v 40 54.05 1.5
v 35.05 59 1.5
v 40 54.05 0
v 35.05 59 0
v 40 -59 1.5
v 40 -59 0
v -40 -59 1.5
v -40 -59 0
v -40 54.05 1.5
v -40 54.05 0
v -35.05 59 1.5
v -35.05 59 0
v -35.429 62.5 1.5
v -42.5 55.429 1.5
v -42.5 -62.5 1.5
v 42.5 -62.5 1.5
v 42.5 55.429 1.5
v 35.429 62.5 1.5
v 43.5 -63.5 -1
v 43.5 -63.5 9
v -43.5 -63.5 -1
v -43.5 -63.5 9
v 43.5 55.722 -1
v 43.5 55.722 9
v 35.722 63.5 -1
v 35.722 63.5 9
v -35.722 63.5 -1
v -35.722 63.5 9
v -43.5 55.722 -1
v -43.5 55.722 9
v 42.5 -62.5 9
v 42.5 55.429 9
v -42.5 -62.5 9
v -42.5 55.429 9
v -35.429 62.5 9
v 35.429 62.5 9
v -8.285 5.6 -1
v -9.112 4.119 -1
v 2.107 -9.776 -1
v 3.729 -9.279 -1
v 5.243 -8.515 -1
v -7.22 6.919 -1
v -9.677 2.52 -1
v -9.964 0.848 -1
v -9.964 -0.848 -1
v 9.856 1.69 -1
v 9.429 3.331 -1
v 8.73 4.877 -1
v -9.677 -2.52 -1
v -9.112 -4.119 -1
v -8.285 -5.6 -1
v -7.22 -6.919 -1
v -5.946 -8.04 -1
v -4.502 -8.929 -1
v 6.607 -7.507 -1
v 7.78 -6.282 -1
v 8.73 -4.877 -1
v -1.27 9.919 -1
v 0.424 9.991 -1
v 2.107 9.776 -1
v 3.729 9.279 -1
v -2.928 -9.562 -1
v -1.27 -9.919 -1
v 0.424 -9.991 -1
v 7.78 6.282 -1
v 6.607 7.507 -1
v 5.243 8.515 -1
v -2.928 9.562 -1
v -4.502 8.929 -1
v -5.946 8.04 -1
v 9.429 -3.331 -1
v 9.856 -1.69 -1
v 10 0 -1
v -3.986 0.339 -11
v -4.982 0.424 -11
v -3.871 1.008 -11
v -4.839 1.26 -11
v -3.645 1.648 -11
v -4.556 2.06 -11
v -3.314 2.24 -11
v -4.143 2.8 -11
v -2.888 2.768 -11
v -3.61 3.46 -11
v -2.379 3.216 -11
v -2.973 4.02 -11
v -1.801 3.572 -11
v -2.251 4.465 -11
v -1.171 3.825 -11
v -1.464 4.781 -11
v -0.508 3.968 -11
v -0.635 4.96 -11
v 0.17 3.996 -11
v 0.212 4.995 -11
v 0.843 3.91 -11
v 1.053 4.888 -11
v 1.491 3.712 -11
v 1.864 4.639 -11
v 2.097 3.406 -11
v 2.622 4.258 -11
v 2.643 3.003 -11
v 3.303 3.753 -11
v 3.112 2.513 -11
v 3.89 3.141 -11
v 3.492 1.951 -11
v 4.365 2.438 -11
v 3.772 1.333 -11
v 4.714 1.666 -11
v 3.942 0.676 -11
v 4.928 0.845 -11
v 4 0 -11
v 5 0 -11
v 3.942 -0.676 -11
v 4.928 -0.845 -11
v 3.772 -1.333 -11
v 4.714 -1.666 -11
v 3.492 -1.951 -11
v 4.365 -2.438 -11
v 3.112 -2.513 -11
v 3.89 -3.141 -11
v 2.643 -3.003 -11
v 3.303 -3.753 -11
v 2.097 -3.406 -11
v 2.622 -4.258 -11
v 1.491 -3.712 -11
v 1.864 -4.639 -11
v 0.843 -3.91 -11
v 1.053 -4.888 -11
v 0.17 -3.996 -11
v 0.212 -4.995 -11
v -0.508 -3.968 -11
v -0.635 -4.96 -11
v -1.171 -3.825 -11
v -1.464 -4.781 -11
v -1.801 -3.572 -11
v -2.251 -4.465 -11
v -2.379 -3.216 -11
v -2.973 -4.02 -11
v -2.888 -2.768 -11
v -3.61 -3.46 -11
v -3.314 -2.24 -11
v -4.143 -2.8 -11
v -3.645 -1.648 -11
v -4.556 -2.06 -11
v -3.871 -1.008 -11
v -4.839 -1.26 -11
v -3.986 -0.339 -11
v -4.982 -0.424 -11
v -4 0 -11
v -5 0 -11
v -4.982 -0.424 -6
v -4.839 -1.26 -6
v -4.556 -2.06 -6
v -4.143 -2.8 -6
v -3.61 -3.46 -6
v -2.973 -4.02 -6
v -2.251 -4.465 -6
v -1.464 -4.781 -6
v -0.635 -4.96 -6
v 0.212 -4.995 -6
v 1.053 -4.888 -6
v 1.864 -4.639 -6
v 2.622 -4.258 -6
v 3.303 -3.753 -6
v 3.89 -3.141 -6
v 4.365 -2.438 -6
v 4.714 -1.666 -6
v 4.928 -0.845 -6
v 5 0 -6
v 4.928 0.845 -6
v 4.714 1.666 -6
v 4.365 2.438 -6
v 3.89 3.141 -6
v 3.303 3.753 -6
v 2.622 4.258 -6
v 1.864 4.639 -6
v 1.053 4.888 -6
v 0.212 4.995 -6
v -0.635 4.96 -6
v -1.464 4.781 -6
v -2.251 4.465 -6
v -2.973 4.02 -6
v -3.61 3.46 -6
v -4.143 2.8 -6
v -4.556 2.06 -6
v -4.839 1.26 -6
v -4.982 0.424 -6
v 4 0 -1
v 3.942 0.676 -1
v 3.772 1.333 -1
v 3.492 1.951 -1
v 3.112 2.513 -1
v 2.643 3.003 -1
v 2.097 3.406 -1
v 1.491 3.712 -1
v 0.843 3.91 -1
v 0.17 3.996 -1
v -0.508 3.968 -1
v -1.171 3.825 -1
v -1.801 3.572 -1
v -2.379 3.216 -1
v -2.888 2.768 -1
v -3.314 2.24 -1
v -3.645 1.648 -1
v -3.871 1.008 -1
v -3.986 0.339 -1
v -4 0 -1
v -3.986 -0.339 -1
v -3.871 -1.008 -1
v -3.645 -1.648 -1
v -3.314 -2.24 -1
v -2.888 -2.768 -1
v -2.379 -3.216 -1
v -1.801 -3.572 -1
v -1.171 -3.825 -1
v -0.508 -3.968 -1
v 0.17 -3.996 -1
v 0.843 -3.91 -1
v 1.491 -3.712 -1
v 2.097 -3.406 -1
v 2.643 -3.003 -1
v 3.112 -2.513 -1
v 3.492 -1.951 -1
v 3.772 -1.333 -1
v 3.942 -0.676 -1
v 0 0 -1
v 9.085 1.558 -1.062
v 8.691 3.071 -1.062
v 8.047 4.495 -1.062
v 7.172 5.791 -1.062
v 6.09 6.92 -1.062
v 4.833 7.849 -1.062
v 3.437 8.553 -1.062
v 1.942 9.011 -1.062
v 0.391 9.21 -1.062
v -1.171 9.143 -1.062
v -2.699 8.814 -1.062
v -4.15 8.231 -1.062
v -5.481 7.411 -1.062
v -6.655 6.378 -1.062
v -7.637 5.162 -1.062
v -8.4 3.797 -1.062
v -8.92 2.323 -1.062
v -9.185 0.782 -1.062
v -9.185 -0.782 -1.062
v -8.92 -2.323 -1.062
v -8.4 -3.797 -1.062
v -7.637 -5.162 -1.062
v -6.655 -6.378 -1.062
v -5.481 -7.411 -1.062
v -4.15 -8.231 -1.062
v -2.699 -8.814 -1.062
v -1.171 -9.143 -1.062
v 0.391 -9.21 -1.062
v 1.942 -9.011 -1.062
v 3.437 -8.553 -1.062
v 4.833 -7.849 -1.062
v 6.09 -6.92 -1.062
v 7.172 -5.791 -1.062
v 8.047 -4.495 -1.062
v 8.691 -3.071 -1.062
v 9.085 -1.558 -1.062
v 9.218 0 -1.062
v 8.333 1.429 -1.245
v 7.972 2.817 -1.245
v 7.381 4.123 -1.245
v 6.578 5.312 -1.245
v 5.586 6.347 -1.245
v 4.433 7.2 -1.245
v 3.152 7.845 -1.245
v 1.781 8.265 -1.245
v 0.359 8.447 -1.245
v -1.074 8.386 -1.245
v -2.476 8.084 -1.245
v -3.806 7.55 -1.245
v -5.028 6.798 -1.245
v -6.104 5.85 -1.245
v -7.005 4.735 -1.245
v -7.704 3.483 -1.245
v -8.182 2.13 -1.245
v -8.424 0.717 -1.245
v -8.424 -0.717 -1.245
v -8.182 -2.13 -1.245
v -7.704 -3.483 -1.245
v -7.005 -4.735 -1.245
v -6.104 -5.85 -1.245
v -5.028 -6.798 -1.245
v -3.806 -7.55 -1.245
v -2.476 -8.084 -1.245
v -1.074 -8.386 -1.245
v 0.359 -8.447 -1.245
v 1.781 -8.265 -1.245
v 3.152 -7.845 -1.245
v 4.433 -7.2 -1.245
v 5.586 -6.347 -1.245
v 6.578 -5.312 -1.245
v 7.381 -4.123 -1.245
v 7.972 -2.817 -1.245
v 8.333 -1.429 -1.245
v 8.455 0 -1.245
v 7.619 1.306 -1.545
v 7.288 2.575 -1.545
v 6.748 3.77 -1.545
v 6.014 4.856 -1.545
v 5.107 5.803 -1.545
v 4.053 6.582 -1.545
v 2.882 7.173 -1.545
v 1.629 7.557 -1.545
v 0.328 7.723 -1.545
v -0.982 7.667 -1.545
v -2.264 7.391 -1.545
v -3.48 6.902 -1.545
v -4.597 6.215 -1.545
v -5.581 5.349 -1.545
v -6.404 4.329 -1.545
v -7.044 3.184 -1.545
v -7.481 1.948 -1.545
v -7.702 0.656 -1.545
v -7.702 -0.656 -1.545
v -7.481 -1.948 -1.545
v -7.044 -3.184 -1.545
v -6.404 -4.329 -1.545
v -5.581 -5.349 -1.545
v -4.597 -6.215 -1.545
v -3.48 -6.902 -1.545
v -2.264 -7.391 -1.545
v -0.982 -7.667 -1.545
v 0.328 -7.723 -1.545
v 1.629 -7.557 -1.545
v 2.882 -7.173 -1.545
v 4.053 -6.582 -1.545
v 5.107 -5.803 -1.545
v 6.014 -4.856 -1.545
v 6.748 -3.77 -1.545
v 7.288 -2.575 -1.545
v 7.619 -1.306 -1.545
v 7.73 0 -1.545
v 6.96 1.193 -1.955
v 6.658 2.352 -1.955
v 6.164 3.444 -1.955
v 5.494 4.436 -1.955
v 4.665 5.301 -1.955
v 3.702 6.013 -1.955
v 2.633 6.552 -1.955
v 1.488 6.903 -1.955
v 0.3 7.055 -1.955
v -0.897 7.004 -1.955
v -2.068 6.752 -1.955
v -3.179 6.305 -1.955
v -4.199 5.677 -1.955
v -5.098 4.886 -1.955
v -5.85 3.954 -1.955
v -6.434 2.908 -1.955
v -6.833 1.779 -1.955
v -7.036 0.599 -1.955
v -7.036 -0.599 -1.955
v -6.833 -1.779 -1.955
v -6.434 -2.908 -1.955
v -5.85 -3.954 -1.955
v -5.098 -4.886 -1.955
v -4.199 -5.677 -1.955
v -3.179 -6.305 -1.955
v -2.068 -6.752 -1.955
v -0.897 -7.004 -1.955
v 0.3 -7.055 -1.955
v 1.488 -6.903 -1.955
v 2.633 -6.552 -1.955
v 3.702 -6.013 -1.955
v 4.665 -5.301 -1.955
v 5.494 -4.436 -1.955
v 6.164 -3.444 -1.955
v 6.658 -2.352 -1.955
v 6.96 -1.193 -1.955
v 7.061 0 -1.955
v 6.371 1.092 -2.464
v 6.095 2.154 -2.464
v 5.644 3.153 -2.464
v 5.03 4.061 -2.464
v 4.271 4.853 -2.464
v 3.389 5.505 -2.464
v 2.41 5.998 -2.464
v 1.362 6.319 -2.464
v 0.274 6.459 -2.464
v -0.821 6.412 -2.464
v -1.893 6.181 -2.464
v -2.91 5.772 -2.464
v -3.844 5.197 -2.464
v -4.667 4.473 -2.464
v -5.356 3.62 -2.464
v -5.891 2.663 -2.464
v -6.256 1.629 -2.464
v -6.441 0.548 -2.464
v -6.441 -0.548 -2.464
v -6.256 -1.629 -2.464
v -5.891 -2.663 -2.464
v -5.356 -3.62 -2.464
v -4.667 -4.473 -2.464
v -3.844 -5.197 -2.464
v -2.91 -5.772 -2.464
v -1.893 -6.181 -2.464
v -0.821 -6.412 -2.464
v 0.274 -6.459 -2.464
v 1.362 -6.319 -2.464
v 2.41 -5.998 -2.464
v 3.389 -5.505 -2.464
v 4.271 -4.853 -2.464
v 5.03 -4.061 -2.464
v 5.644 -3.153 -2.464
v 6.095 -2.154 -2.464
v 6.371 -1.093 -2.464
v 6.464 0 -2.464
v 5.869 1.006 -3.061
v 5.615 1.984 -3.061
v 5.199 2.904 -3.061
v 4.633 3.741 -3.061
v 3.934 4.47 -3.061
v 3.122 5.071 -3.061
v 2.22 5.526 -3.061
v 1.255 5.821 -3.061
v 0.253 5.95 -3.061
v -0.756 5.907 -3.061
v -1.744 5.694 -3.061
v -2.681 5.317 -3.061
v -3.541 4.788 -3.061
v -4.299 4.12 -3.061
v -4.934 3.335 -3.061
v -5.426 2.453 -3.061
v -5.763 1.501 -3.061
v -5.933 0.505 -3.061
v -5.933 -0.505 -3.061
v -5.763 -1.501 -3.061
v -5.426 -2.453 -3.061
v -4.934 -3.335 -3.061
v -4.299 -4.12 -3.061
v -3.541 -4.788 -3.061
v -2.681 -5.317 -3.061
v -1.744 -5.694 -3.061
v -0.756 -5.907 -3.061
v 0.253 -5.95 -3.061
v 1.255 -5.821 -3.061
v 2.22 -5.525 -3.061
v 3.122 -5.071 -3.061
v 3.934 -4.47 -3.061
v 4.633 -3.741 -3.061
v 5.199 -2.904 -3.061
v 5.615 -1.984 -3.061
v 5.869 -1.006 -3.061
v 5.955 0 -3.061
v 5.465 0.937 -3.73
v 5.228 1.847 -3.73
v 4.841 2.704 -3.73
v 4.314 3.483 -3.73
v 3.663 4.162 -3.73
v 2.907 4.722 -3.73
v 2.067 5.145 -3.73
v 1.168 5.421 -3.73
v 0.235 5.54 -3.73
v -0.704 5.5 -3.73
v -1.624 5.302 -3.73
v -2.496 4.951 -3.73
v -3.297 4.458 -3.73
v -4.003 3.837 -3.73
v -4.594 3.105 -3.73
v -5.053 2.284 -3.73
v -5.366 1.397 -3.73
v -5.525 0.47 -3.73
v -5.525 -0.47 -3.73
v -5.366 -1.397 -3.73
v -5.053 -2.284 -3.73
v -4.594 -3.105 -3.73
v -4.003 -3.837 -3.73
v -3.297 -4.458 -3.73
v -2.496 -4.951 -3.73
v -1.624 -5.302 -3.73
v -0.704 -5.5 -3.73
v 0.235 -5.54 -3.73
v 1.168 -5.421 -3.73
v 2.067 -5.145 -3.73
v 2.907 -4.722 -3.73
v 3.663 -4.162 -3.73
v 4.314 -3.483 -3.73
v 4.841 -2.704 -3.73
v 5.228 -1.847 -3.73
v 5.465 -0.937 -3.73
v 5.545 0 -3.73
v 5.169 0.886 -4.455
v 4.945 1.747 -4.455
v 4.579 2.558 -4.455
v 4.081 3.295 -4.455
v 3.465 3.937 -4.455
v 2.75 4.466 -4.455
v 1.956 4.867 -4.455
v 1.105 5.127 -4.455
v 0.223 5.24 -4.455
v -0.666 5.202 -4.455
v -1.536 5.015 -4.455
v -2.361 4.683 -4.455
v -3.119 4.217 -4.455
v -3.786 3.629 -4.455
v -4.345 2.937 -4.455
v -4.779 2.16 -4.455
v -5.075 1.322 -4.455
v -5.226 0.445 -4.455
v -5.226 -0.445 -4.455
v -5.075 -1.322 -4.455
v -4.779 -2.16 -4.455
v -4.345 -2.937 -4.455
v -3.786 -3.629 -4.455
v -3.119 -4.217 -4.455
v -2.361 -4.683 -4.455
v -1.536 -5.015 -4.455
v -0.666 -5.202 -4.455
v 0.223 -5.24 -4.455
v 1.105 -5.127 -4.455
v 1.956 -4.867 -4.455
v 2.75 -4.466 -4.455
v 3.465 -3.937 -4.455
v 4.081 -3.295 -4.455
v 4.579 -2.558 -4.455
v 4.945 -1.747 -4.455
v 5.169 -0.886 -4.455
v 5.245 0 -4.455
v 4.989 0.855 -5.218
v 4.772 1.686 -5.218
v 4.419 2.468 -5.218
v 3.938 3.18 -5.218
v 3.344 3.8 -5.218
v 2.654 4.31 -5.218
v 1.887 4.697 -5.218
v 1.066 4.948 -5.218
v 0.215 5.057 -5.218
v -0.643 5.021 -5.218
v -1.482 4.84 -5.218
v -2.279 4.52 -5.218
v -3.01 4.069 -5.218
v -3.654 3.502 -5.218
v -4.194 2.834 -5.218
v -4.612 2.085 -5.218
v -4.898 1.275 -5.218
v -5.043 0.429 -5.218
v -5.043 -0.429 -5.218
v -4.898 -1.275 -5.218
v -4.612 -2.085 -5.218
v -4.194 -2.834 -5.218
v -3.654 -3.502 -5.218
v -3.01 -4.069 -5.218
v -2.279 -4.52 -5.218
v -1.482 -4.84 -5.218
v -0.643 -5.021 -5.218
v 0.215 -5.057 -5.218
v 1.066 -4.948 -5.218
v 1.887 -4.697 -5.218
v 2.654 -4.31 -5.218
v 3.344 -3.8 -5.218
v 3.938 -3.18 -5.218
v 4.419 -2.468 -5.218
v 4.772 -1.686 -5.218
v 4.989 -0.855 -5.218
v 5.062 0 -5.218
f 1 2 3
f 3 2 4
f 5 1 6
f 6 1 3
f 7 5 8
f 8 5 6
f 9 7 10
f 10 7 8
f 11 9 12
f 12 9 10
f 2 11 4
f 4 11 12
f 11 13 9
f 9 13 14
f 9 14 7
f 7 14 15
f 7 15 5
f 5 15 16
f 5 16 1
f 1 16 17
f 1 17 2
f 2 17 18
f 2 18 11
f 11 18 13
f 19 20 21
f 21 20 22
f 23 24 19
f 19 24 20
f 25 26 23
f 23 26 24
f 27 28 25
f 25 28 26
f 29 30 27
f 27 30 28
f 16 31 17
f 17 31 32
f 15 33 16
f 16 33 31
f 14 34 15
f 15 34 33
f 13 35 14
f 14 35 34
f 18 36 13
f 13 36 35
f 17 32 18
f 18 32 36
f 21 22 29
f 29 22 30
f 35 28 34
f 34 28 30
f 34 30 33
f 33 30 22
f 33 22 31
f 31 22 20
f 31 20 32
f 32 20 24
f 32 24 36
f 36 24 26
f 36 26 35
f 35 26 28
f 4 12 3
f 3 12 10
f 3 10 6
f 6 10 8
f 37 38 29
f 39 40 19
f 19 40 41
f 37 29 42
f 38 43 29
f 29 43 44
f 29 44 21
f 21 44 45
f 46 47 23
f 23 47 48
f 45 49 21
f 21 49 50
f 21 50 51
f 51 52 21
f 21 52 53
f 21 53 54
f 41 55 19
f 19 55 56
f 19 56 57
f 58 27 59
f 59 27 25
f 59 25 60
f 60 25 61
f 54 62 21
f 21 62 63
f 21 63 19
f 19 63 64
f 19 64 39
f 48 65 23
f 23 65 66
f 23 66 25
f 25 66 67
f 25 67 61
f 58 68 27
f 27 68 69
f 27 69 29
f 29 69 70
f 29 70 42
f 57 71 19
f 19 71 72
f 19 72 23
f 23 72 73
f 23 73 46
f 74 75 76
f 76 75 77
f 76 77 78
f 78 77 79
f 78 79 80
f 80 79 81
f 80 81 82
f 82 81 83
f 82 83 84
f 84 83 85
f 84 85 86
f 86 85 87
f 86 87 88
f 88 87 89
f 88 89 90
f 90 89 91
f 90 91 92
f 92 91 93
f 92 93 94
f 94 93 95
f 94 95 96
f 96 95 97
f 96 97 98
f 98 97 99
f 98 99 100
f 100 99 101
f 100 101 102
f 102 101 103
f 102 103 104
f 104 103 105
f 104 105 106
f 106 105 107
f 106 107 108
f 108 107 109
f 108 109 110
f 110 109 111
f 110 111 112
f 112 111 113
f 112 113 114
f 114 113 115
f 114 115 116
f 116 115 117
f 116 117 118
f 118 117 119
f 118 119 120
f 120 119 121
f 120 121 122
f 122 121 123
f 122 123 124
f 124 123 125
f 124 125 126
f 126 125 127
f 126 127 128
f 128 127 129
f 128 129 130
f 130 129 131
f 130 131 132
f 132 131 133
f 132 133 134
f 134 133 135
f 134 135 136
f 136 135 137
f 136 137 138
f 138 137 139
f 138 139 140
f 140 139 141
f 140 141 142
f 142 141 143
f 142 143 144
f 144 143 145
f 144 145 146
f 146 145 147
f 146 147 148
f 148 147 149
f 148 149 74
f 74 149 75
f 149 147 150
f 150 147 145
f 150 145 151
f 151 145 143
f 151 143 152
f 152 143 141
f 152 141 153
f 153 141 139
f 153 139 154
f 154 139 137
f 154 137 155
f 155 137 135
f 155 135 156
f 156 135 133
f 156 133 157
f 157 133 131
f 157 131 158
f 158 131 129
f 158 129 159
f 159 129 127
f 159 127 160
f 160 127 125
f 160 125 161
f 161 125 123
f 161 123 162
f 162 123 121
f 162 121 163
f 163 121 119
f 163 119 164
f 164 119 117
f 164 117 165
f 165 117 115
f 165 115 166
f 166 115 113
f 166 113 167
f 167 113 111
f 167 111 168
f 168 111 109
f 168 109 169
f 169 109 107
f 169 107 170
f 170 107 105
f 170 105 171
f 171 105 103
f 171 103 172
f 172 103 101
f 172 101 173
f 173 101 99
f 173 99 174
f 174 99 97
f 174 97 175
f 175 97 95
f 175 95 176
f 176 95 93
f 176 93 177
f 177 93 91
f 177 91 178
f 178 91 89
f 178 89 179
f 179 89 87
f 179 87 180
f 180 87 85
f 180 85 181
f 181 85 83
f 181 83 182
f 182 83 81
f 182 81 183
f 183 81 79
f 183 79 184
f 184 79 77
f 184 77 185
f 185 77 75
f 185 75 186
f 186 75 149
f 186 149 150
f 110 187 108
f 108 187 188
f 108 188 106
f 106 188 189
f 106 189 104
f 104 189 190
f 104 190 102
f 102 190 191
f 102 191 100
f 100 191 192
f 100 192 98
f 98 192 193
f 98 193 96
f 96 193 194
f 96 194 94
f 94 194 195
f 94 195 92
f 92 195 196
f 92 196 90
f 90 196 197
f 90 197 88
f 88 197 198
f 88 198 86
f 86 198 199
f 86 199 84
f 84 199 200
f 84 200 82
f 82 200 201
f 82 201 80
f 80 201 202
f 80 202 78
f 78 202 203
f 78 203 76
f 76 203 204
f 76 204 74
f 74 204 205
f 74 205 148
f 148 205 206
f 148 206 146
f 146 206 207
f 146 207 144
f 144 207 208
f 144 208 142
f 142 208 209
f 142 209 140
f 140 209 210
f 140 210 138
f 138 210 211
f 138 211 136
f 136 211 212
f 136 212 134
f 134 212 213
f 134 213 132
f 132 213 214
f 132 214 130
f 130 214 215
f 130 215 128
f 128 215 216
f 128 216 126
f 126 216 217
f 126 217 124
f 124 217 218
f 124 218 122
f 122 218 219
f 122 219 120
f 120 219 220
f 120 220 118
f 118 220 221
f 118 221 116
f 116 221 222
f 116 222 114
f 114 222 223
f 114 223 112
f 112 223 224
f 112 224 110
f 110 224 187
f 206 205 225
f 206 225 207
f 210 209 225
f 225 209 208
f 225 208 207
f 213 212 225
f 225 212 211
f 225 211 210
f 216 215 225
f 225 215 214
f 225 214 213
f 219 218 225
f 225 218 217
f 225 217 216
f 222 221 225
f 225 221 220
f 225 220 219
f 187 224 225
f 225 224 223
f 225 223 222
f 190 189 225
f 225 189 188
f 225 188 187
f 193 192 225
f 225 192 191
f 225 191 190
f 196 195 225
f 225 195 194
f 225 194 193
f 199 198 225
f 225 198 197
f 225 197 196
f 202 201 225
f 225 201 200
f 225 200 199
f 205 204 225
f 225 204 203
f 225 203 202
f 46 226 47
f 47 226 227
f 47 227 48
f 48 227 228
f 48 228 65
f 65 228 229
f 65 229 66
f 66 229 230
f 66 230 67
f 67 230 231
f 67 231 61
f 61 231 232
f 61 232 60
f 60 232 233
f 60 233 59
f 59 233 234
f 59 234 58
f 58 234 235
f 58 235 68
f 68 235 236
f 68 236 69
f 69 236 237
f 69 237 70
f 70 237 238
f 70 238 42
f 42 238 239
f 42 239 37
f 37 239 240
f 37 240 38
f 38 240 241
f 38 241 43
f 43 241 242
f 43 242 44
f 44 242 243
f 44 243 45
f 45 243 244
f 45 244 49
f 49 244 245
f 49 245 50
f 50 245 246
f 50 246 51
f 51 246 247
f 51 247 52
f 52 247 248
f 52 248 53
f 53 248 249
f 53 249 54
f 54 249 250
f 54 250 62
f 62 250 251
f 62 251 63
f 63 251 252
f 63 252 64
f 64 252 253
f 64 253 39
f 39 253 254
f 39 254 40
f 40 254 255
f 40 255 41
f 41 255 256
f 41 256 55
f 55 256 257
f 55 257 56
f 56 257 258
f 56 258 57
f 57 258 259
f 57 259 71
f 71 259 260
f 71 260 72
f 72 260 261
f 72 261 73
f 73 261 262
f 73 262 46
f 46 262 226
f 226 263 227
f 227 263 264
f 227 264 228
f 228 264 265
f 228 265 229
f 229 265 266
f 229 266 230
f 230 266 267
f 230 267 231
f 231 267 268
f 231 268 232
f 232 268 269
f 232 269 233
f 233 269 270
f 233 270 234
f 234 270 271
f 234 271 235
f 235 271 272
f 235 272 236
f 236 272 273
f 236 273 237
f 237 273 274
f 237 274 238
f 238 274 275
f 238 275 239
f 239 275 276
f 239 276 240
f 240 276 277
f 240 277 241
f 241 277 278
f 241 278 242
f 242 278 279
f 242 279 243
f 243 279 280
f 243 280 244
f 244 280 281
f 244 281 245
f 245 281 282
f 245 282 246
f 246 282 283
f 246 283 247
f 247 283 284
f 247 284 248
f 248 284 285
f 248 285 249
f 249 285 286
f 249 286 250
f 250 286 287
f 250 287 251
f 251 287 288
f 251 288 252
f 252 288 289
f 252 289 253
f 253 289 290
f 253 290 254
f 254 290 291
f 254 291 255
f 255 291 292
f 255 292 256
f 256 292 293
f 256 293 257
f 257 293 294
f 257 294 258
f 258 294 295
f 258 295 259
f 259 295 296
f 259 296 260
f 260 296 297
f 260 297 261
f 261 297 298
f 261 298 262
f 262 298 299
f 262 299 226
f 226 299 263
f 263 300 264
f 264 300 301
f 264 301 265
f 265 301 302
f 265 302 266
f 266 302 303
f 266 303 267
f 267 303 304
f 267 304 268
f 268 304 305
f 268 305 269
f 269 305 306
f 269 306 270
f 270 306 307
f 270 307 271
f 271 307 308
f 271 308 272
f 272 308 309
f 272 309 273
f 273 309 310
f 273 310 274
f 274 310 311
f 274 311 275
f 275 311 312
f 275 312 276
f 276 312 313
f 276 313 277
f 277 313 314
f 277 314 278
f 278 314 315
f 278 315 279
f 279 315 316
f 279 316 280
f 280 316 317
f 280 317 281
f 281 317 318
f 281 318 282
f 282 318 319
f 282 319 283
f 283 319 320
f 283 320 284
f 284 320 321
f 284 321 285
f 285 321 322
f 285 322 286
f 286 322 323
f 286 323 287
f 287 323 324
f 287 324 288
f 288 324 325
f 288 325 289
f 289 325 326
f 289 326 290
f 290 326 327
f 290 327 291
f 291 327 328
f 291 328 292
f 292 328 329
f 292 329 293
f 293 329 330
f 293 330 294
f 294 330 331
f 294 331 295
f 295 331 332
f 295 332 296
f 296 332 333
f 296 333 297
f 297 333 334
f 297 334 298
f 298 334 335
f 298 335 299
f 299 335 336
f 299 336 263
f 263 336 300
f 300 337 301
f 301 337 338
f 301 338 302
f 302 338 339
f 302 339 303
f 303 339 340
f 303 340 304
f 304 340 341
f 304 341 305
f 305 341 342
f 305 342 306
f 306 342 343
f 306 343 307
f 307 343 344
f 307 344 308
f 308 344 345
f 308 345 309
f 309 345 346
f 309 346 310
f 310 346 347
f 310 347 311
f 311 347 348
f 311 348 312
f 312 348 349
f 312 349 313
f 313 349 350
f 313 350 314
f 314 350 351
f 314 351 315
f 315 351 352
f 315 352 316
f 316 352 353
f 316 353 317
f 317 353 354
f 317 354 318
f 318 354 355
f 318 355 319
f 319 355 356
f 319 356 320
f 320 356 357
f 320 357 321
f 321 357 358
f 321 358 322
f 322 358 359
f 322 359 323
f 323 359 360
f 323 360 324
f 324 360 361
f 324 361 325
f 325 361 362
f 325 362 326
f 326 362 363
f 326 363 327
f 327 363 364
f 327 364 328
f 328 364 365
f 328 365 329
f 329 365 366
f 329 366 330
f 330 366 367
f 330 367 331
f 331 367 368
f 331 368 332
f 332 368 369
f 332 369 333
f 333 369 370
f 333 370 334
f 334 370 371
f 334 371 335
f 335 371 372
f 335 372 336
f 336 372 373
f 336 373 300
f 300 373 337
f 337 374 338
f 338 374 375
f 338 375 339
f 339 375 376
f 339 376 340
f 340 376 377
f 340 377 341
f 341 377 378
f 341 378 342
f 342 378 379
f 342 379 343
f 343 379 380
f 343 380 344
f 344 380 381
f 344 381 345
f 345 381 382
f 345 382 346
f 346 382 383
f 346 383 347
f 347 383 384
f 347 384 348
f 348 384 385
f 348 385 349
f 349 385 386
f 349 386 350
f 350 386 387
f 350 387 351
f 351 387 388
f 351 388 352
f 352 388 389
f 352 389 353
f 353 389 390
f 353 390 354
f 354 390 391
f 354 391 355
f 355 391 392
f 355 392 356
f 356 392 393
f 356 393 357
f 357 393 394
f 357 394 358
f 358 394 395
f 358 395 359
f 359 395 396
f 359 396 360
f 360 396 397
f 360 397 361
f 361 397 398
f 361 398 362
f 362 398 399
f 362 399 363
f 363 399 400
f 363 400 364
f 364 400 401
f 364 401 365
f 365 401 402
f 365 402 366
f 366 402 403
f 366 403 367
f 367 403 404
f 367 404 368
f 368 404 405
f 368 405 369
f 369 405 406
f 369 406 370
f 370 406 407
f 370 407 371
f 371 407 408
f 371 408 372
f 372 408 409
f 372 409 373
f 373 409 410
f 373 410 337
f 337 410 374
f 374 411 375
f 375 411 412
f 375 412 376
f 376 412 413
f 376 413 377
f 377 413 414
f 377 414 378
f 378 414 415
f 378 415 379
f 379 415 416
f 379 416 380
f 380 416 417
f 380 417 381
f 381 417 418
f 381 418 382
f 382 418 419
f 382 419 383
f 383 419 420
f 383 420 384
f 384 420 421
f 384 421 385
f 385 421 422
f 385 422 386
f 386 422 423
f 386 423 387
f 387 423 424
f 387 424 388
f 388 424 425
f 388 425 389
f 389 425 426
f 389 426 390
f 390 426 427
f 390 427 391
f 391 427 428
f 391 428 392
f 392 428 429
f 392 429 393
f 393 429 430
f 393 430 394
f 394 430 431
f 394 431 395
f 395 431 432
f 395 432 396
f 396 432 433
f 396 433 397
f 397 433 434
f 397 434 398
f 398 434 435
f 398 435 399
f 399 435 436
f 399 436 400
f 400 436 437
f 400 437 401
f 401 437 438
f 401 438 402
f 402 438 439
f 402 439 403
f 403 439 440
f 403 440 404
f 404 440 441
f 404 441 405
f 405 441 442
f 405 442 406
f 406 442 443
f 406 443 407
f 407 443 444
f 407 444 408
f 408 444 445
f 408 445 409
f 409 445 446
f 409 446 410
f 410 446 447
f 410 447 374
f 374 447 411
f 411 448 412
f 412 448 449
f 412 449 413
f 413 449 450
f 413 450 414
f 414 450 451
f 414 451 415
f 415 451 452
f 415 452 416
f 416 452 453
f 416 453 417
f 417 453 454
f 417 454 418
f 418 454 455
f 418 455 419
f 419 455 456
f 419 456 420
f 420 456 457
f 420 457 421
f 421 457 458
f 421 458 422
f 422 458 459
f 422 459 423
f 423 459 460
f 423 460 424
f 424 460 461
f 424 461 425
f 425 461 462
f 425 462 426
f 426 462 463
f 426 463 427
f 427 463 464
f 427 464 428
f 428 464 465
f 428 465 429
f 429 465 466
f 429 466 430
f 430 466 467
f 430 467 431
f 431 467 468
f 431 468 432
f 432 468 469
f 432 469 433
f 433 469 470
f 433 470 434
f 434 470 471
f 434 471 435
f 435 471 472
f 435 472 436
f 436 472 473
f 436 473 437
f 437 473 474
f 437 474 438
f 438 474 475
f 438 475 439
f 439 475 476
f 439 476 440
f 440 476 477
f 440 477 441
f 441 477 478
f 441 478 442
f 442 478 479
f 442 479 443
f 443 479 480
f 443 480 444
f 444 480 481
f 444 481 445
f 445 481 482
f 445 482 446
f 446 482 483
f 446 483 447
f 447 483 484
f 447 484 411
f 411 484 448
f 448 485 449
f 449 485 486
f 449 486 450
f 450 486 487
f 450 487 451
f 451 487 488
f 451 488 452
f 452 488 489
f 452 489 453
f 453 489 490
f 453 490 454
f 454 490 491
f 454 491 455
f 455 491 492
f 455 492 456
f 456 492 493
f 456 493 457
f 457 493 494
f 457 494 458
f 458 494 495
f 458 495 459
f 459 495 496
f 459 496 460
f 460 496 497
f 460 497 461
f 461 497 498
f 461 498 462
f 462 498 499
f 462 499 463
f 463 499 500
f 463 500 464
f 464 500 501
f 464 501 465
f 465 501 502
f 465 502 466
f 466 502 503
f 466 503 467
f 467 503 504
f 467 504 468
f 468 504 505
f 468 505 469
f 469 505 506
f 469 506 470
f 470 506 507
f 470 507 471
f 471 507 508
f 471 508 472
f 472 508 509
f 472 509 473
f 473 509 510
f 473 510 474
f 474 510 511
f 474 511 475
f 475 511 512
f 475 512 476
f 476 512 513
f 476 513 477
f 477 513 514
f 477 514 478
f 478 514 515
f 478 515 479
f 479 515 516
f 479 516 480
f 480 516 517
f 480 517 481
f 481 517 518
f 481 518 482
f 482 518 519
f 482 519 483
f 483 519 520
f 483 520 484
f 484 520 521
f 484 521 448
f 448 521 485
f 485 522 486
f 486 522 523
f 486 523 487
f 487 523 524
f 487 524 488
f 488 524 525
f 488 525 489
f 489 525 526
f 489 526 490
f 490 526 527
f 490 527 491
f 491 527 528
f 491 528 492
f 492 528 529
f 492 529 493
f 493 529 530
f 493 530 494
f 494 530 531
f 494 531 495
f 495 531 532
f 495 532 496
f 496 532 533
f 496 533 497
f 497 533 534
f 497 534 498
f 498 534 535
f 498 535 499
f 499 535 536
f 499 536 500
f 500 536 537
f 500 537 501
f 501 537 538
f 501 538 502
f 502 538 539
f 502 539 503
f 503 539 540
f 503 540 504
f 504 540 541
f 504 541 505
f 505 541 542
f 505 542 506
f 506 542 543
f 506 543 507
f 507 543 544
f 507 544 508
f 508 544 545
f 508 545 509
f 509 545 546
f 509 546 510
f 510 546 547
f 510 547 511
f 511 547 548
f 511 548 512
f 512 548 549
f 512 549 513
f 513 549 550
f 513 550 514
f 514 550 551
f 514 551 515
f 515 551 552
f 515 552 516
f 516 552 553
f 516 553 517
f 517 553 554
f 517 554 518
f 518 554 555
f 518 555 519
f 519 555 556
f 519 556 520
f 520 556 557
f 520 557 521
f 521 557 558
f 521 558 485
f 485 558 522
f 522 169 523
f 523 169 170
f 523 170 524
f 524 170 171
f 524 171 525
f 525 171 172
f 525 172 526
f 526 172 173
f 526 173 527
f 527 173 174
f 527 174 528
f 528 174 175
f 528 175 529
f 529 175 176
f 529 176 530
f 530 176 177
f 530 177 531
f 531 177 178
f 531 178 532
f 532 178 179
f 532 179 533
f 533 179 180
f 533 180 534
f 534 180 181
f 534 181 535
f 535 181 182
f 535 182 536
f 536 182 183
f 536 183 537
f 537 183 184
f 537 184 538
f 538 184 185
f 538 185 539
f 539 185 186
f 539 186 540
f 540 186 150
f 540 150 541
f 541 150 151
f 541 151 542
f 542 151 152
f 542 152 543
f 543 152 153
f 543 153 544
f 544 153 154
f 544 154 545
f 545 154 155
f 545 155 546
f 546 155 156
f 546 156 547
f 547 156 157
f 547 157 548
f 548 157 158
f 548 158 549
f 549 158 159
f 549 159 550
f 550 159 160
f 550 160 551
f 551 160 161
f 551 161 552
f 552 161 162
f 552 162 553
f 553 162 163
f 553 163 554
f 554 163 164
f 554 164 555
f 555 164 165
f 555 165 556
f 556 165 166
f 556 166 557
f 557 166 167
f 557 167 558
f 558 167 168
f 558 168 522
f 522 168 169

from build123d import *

# Parameters (mm, degrees)
BOSS_EXTRUDE1_DEPTH = 1.5
BOSS_EXTRUDE2_DEPTH = 9
BOSS_EXTRUDE3_DEPTH = 1
SKETCH4_R           = 5
SKETCH4_R_2         = 4
BOSS_EXTRUDE4_DEPTH = 10
FILLET1_R           = 5


with BuildPart() as part:
    # Sketch1 → Boss-Extrude1 (new body)
    with BuildSketch(Plane(origin=(0, 0, 0), x_dir=(0, 1, 0), z_dir=(0, 0, 1))):
        Polygon((-62.5, -42.5), (-62.5, 42.5), (55.428932188, 42.5), (62.5, 35.428932188), (62.5, -35.428932188), (55.428932188, -42.5), align=None)
        Polygon((54.050252532, 40), (59, 35.050252532), (59, -35.050252532), (54.050252532, -40), (-59, -40), (-59, 40), align=None, mode=Mode.SUBTRACT)
    extrude(amount=BOSS_EXTRUDE1_DEPTH)

    # Sketch2 → Boss-Extrude2 (add)
    with BuildSketch(Plane(origin=(0, 0, 0), x_dir=(0, 1, 0), z_dir=(0, 0, 1))):
        Polygon((-63.5, 43.5), (-63.5, -43.5), (55.721825407, -43.5), (63.5, -35.721825407), (63.5, 35.721825407), (55.721825407, 43.5), align=None)
        Polygon((-62.5, -42.5), (55.428932188, -42.5), (62.5, -35.428932188), (62.5, 35.428932188), (55.428932188, 42.5), (-62.5, 42.5), align=None, mode=Mode.SUBTRACT)
    extrude(amount=BOSS_EXTRUDE2_DEPTH)

    # Sketch3 → Boss-Extrude3 (add)
    with BuildSketch(Plane(origin=(0, 0, 0), x_dir=(0, 1, 0), z_dir=(0, 0, 1))):
        Polygon((63.5, 35.721825407), (55.721825407, 43.5), (-63.5, 43.5), (-63.5, -43.5), (55.721825407, -43.5), (63.5, -35.721825407), align=None)
    extrude(amount=-BOSS_EXTRUDE3_DEPTH)

    # Sketch4 → Boss-Extrude4 (add)
    with BuildSketch(Plane(origin=(0, 0, -1), x_dir=(1, 0, 0), z_dir=(0, 0, -1))):
        Circle(SKETCH4_R)
        with Locations(Location((0, 0, 0), (0, 0, 180))):
            Circle(SKETCH4_R_2, mode=Mode.SUBTRACT)
    extrude(amount=BOSS_EXTRUDE4_DEPTH)

    # Fillet1
    fillet1_edges = [part.edges().sort_by_distance(p)[0] for p in [
        (-5, 0, -1),
    ]]
    fillet(fillet1_edges, radius=FILLET1_R)


solid = part.part
